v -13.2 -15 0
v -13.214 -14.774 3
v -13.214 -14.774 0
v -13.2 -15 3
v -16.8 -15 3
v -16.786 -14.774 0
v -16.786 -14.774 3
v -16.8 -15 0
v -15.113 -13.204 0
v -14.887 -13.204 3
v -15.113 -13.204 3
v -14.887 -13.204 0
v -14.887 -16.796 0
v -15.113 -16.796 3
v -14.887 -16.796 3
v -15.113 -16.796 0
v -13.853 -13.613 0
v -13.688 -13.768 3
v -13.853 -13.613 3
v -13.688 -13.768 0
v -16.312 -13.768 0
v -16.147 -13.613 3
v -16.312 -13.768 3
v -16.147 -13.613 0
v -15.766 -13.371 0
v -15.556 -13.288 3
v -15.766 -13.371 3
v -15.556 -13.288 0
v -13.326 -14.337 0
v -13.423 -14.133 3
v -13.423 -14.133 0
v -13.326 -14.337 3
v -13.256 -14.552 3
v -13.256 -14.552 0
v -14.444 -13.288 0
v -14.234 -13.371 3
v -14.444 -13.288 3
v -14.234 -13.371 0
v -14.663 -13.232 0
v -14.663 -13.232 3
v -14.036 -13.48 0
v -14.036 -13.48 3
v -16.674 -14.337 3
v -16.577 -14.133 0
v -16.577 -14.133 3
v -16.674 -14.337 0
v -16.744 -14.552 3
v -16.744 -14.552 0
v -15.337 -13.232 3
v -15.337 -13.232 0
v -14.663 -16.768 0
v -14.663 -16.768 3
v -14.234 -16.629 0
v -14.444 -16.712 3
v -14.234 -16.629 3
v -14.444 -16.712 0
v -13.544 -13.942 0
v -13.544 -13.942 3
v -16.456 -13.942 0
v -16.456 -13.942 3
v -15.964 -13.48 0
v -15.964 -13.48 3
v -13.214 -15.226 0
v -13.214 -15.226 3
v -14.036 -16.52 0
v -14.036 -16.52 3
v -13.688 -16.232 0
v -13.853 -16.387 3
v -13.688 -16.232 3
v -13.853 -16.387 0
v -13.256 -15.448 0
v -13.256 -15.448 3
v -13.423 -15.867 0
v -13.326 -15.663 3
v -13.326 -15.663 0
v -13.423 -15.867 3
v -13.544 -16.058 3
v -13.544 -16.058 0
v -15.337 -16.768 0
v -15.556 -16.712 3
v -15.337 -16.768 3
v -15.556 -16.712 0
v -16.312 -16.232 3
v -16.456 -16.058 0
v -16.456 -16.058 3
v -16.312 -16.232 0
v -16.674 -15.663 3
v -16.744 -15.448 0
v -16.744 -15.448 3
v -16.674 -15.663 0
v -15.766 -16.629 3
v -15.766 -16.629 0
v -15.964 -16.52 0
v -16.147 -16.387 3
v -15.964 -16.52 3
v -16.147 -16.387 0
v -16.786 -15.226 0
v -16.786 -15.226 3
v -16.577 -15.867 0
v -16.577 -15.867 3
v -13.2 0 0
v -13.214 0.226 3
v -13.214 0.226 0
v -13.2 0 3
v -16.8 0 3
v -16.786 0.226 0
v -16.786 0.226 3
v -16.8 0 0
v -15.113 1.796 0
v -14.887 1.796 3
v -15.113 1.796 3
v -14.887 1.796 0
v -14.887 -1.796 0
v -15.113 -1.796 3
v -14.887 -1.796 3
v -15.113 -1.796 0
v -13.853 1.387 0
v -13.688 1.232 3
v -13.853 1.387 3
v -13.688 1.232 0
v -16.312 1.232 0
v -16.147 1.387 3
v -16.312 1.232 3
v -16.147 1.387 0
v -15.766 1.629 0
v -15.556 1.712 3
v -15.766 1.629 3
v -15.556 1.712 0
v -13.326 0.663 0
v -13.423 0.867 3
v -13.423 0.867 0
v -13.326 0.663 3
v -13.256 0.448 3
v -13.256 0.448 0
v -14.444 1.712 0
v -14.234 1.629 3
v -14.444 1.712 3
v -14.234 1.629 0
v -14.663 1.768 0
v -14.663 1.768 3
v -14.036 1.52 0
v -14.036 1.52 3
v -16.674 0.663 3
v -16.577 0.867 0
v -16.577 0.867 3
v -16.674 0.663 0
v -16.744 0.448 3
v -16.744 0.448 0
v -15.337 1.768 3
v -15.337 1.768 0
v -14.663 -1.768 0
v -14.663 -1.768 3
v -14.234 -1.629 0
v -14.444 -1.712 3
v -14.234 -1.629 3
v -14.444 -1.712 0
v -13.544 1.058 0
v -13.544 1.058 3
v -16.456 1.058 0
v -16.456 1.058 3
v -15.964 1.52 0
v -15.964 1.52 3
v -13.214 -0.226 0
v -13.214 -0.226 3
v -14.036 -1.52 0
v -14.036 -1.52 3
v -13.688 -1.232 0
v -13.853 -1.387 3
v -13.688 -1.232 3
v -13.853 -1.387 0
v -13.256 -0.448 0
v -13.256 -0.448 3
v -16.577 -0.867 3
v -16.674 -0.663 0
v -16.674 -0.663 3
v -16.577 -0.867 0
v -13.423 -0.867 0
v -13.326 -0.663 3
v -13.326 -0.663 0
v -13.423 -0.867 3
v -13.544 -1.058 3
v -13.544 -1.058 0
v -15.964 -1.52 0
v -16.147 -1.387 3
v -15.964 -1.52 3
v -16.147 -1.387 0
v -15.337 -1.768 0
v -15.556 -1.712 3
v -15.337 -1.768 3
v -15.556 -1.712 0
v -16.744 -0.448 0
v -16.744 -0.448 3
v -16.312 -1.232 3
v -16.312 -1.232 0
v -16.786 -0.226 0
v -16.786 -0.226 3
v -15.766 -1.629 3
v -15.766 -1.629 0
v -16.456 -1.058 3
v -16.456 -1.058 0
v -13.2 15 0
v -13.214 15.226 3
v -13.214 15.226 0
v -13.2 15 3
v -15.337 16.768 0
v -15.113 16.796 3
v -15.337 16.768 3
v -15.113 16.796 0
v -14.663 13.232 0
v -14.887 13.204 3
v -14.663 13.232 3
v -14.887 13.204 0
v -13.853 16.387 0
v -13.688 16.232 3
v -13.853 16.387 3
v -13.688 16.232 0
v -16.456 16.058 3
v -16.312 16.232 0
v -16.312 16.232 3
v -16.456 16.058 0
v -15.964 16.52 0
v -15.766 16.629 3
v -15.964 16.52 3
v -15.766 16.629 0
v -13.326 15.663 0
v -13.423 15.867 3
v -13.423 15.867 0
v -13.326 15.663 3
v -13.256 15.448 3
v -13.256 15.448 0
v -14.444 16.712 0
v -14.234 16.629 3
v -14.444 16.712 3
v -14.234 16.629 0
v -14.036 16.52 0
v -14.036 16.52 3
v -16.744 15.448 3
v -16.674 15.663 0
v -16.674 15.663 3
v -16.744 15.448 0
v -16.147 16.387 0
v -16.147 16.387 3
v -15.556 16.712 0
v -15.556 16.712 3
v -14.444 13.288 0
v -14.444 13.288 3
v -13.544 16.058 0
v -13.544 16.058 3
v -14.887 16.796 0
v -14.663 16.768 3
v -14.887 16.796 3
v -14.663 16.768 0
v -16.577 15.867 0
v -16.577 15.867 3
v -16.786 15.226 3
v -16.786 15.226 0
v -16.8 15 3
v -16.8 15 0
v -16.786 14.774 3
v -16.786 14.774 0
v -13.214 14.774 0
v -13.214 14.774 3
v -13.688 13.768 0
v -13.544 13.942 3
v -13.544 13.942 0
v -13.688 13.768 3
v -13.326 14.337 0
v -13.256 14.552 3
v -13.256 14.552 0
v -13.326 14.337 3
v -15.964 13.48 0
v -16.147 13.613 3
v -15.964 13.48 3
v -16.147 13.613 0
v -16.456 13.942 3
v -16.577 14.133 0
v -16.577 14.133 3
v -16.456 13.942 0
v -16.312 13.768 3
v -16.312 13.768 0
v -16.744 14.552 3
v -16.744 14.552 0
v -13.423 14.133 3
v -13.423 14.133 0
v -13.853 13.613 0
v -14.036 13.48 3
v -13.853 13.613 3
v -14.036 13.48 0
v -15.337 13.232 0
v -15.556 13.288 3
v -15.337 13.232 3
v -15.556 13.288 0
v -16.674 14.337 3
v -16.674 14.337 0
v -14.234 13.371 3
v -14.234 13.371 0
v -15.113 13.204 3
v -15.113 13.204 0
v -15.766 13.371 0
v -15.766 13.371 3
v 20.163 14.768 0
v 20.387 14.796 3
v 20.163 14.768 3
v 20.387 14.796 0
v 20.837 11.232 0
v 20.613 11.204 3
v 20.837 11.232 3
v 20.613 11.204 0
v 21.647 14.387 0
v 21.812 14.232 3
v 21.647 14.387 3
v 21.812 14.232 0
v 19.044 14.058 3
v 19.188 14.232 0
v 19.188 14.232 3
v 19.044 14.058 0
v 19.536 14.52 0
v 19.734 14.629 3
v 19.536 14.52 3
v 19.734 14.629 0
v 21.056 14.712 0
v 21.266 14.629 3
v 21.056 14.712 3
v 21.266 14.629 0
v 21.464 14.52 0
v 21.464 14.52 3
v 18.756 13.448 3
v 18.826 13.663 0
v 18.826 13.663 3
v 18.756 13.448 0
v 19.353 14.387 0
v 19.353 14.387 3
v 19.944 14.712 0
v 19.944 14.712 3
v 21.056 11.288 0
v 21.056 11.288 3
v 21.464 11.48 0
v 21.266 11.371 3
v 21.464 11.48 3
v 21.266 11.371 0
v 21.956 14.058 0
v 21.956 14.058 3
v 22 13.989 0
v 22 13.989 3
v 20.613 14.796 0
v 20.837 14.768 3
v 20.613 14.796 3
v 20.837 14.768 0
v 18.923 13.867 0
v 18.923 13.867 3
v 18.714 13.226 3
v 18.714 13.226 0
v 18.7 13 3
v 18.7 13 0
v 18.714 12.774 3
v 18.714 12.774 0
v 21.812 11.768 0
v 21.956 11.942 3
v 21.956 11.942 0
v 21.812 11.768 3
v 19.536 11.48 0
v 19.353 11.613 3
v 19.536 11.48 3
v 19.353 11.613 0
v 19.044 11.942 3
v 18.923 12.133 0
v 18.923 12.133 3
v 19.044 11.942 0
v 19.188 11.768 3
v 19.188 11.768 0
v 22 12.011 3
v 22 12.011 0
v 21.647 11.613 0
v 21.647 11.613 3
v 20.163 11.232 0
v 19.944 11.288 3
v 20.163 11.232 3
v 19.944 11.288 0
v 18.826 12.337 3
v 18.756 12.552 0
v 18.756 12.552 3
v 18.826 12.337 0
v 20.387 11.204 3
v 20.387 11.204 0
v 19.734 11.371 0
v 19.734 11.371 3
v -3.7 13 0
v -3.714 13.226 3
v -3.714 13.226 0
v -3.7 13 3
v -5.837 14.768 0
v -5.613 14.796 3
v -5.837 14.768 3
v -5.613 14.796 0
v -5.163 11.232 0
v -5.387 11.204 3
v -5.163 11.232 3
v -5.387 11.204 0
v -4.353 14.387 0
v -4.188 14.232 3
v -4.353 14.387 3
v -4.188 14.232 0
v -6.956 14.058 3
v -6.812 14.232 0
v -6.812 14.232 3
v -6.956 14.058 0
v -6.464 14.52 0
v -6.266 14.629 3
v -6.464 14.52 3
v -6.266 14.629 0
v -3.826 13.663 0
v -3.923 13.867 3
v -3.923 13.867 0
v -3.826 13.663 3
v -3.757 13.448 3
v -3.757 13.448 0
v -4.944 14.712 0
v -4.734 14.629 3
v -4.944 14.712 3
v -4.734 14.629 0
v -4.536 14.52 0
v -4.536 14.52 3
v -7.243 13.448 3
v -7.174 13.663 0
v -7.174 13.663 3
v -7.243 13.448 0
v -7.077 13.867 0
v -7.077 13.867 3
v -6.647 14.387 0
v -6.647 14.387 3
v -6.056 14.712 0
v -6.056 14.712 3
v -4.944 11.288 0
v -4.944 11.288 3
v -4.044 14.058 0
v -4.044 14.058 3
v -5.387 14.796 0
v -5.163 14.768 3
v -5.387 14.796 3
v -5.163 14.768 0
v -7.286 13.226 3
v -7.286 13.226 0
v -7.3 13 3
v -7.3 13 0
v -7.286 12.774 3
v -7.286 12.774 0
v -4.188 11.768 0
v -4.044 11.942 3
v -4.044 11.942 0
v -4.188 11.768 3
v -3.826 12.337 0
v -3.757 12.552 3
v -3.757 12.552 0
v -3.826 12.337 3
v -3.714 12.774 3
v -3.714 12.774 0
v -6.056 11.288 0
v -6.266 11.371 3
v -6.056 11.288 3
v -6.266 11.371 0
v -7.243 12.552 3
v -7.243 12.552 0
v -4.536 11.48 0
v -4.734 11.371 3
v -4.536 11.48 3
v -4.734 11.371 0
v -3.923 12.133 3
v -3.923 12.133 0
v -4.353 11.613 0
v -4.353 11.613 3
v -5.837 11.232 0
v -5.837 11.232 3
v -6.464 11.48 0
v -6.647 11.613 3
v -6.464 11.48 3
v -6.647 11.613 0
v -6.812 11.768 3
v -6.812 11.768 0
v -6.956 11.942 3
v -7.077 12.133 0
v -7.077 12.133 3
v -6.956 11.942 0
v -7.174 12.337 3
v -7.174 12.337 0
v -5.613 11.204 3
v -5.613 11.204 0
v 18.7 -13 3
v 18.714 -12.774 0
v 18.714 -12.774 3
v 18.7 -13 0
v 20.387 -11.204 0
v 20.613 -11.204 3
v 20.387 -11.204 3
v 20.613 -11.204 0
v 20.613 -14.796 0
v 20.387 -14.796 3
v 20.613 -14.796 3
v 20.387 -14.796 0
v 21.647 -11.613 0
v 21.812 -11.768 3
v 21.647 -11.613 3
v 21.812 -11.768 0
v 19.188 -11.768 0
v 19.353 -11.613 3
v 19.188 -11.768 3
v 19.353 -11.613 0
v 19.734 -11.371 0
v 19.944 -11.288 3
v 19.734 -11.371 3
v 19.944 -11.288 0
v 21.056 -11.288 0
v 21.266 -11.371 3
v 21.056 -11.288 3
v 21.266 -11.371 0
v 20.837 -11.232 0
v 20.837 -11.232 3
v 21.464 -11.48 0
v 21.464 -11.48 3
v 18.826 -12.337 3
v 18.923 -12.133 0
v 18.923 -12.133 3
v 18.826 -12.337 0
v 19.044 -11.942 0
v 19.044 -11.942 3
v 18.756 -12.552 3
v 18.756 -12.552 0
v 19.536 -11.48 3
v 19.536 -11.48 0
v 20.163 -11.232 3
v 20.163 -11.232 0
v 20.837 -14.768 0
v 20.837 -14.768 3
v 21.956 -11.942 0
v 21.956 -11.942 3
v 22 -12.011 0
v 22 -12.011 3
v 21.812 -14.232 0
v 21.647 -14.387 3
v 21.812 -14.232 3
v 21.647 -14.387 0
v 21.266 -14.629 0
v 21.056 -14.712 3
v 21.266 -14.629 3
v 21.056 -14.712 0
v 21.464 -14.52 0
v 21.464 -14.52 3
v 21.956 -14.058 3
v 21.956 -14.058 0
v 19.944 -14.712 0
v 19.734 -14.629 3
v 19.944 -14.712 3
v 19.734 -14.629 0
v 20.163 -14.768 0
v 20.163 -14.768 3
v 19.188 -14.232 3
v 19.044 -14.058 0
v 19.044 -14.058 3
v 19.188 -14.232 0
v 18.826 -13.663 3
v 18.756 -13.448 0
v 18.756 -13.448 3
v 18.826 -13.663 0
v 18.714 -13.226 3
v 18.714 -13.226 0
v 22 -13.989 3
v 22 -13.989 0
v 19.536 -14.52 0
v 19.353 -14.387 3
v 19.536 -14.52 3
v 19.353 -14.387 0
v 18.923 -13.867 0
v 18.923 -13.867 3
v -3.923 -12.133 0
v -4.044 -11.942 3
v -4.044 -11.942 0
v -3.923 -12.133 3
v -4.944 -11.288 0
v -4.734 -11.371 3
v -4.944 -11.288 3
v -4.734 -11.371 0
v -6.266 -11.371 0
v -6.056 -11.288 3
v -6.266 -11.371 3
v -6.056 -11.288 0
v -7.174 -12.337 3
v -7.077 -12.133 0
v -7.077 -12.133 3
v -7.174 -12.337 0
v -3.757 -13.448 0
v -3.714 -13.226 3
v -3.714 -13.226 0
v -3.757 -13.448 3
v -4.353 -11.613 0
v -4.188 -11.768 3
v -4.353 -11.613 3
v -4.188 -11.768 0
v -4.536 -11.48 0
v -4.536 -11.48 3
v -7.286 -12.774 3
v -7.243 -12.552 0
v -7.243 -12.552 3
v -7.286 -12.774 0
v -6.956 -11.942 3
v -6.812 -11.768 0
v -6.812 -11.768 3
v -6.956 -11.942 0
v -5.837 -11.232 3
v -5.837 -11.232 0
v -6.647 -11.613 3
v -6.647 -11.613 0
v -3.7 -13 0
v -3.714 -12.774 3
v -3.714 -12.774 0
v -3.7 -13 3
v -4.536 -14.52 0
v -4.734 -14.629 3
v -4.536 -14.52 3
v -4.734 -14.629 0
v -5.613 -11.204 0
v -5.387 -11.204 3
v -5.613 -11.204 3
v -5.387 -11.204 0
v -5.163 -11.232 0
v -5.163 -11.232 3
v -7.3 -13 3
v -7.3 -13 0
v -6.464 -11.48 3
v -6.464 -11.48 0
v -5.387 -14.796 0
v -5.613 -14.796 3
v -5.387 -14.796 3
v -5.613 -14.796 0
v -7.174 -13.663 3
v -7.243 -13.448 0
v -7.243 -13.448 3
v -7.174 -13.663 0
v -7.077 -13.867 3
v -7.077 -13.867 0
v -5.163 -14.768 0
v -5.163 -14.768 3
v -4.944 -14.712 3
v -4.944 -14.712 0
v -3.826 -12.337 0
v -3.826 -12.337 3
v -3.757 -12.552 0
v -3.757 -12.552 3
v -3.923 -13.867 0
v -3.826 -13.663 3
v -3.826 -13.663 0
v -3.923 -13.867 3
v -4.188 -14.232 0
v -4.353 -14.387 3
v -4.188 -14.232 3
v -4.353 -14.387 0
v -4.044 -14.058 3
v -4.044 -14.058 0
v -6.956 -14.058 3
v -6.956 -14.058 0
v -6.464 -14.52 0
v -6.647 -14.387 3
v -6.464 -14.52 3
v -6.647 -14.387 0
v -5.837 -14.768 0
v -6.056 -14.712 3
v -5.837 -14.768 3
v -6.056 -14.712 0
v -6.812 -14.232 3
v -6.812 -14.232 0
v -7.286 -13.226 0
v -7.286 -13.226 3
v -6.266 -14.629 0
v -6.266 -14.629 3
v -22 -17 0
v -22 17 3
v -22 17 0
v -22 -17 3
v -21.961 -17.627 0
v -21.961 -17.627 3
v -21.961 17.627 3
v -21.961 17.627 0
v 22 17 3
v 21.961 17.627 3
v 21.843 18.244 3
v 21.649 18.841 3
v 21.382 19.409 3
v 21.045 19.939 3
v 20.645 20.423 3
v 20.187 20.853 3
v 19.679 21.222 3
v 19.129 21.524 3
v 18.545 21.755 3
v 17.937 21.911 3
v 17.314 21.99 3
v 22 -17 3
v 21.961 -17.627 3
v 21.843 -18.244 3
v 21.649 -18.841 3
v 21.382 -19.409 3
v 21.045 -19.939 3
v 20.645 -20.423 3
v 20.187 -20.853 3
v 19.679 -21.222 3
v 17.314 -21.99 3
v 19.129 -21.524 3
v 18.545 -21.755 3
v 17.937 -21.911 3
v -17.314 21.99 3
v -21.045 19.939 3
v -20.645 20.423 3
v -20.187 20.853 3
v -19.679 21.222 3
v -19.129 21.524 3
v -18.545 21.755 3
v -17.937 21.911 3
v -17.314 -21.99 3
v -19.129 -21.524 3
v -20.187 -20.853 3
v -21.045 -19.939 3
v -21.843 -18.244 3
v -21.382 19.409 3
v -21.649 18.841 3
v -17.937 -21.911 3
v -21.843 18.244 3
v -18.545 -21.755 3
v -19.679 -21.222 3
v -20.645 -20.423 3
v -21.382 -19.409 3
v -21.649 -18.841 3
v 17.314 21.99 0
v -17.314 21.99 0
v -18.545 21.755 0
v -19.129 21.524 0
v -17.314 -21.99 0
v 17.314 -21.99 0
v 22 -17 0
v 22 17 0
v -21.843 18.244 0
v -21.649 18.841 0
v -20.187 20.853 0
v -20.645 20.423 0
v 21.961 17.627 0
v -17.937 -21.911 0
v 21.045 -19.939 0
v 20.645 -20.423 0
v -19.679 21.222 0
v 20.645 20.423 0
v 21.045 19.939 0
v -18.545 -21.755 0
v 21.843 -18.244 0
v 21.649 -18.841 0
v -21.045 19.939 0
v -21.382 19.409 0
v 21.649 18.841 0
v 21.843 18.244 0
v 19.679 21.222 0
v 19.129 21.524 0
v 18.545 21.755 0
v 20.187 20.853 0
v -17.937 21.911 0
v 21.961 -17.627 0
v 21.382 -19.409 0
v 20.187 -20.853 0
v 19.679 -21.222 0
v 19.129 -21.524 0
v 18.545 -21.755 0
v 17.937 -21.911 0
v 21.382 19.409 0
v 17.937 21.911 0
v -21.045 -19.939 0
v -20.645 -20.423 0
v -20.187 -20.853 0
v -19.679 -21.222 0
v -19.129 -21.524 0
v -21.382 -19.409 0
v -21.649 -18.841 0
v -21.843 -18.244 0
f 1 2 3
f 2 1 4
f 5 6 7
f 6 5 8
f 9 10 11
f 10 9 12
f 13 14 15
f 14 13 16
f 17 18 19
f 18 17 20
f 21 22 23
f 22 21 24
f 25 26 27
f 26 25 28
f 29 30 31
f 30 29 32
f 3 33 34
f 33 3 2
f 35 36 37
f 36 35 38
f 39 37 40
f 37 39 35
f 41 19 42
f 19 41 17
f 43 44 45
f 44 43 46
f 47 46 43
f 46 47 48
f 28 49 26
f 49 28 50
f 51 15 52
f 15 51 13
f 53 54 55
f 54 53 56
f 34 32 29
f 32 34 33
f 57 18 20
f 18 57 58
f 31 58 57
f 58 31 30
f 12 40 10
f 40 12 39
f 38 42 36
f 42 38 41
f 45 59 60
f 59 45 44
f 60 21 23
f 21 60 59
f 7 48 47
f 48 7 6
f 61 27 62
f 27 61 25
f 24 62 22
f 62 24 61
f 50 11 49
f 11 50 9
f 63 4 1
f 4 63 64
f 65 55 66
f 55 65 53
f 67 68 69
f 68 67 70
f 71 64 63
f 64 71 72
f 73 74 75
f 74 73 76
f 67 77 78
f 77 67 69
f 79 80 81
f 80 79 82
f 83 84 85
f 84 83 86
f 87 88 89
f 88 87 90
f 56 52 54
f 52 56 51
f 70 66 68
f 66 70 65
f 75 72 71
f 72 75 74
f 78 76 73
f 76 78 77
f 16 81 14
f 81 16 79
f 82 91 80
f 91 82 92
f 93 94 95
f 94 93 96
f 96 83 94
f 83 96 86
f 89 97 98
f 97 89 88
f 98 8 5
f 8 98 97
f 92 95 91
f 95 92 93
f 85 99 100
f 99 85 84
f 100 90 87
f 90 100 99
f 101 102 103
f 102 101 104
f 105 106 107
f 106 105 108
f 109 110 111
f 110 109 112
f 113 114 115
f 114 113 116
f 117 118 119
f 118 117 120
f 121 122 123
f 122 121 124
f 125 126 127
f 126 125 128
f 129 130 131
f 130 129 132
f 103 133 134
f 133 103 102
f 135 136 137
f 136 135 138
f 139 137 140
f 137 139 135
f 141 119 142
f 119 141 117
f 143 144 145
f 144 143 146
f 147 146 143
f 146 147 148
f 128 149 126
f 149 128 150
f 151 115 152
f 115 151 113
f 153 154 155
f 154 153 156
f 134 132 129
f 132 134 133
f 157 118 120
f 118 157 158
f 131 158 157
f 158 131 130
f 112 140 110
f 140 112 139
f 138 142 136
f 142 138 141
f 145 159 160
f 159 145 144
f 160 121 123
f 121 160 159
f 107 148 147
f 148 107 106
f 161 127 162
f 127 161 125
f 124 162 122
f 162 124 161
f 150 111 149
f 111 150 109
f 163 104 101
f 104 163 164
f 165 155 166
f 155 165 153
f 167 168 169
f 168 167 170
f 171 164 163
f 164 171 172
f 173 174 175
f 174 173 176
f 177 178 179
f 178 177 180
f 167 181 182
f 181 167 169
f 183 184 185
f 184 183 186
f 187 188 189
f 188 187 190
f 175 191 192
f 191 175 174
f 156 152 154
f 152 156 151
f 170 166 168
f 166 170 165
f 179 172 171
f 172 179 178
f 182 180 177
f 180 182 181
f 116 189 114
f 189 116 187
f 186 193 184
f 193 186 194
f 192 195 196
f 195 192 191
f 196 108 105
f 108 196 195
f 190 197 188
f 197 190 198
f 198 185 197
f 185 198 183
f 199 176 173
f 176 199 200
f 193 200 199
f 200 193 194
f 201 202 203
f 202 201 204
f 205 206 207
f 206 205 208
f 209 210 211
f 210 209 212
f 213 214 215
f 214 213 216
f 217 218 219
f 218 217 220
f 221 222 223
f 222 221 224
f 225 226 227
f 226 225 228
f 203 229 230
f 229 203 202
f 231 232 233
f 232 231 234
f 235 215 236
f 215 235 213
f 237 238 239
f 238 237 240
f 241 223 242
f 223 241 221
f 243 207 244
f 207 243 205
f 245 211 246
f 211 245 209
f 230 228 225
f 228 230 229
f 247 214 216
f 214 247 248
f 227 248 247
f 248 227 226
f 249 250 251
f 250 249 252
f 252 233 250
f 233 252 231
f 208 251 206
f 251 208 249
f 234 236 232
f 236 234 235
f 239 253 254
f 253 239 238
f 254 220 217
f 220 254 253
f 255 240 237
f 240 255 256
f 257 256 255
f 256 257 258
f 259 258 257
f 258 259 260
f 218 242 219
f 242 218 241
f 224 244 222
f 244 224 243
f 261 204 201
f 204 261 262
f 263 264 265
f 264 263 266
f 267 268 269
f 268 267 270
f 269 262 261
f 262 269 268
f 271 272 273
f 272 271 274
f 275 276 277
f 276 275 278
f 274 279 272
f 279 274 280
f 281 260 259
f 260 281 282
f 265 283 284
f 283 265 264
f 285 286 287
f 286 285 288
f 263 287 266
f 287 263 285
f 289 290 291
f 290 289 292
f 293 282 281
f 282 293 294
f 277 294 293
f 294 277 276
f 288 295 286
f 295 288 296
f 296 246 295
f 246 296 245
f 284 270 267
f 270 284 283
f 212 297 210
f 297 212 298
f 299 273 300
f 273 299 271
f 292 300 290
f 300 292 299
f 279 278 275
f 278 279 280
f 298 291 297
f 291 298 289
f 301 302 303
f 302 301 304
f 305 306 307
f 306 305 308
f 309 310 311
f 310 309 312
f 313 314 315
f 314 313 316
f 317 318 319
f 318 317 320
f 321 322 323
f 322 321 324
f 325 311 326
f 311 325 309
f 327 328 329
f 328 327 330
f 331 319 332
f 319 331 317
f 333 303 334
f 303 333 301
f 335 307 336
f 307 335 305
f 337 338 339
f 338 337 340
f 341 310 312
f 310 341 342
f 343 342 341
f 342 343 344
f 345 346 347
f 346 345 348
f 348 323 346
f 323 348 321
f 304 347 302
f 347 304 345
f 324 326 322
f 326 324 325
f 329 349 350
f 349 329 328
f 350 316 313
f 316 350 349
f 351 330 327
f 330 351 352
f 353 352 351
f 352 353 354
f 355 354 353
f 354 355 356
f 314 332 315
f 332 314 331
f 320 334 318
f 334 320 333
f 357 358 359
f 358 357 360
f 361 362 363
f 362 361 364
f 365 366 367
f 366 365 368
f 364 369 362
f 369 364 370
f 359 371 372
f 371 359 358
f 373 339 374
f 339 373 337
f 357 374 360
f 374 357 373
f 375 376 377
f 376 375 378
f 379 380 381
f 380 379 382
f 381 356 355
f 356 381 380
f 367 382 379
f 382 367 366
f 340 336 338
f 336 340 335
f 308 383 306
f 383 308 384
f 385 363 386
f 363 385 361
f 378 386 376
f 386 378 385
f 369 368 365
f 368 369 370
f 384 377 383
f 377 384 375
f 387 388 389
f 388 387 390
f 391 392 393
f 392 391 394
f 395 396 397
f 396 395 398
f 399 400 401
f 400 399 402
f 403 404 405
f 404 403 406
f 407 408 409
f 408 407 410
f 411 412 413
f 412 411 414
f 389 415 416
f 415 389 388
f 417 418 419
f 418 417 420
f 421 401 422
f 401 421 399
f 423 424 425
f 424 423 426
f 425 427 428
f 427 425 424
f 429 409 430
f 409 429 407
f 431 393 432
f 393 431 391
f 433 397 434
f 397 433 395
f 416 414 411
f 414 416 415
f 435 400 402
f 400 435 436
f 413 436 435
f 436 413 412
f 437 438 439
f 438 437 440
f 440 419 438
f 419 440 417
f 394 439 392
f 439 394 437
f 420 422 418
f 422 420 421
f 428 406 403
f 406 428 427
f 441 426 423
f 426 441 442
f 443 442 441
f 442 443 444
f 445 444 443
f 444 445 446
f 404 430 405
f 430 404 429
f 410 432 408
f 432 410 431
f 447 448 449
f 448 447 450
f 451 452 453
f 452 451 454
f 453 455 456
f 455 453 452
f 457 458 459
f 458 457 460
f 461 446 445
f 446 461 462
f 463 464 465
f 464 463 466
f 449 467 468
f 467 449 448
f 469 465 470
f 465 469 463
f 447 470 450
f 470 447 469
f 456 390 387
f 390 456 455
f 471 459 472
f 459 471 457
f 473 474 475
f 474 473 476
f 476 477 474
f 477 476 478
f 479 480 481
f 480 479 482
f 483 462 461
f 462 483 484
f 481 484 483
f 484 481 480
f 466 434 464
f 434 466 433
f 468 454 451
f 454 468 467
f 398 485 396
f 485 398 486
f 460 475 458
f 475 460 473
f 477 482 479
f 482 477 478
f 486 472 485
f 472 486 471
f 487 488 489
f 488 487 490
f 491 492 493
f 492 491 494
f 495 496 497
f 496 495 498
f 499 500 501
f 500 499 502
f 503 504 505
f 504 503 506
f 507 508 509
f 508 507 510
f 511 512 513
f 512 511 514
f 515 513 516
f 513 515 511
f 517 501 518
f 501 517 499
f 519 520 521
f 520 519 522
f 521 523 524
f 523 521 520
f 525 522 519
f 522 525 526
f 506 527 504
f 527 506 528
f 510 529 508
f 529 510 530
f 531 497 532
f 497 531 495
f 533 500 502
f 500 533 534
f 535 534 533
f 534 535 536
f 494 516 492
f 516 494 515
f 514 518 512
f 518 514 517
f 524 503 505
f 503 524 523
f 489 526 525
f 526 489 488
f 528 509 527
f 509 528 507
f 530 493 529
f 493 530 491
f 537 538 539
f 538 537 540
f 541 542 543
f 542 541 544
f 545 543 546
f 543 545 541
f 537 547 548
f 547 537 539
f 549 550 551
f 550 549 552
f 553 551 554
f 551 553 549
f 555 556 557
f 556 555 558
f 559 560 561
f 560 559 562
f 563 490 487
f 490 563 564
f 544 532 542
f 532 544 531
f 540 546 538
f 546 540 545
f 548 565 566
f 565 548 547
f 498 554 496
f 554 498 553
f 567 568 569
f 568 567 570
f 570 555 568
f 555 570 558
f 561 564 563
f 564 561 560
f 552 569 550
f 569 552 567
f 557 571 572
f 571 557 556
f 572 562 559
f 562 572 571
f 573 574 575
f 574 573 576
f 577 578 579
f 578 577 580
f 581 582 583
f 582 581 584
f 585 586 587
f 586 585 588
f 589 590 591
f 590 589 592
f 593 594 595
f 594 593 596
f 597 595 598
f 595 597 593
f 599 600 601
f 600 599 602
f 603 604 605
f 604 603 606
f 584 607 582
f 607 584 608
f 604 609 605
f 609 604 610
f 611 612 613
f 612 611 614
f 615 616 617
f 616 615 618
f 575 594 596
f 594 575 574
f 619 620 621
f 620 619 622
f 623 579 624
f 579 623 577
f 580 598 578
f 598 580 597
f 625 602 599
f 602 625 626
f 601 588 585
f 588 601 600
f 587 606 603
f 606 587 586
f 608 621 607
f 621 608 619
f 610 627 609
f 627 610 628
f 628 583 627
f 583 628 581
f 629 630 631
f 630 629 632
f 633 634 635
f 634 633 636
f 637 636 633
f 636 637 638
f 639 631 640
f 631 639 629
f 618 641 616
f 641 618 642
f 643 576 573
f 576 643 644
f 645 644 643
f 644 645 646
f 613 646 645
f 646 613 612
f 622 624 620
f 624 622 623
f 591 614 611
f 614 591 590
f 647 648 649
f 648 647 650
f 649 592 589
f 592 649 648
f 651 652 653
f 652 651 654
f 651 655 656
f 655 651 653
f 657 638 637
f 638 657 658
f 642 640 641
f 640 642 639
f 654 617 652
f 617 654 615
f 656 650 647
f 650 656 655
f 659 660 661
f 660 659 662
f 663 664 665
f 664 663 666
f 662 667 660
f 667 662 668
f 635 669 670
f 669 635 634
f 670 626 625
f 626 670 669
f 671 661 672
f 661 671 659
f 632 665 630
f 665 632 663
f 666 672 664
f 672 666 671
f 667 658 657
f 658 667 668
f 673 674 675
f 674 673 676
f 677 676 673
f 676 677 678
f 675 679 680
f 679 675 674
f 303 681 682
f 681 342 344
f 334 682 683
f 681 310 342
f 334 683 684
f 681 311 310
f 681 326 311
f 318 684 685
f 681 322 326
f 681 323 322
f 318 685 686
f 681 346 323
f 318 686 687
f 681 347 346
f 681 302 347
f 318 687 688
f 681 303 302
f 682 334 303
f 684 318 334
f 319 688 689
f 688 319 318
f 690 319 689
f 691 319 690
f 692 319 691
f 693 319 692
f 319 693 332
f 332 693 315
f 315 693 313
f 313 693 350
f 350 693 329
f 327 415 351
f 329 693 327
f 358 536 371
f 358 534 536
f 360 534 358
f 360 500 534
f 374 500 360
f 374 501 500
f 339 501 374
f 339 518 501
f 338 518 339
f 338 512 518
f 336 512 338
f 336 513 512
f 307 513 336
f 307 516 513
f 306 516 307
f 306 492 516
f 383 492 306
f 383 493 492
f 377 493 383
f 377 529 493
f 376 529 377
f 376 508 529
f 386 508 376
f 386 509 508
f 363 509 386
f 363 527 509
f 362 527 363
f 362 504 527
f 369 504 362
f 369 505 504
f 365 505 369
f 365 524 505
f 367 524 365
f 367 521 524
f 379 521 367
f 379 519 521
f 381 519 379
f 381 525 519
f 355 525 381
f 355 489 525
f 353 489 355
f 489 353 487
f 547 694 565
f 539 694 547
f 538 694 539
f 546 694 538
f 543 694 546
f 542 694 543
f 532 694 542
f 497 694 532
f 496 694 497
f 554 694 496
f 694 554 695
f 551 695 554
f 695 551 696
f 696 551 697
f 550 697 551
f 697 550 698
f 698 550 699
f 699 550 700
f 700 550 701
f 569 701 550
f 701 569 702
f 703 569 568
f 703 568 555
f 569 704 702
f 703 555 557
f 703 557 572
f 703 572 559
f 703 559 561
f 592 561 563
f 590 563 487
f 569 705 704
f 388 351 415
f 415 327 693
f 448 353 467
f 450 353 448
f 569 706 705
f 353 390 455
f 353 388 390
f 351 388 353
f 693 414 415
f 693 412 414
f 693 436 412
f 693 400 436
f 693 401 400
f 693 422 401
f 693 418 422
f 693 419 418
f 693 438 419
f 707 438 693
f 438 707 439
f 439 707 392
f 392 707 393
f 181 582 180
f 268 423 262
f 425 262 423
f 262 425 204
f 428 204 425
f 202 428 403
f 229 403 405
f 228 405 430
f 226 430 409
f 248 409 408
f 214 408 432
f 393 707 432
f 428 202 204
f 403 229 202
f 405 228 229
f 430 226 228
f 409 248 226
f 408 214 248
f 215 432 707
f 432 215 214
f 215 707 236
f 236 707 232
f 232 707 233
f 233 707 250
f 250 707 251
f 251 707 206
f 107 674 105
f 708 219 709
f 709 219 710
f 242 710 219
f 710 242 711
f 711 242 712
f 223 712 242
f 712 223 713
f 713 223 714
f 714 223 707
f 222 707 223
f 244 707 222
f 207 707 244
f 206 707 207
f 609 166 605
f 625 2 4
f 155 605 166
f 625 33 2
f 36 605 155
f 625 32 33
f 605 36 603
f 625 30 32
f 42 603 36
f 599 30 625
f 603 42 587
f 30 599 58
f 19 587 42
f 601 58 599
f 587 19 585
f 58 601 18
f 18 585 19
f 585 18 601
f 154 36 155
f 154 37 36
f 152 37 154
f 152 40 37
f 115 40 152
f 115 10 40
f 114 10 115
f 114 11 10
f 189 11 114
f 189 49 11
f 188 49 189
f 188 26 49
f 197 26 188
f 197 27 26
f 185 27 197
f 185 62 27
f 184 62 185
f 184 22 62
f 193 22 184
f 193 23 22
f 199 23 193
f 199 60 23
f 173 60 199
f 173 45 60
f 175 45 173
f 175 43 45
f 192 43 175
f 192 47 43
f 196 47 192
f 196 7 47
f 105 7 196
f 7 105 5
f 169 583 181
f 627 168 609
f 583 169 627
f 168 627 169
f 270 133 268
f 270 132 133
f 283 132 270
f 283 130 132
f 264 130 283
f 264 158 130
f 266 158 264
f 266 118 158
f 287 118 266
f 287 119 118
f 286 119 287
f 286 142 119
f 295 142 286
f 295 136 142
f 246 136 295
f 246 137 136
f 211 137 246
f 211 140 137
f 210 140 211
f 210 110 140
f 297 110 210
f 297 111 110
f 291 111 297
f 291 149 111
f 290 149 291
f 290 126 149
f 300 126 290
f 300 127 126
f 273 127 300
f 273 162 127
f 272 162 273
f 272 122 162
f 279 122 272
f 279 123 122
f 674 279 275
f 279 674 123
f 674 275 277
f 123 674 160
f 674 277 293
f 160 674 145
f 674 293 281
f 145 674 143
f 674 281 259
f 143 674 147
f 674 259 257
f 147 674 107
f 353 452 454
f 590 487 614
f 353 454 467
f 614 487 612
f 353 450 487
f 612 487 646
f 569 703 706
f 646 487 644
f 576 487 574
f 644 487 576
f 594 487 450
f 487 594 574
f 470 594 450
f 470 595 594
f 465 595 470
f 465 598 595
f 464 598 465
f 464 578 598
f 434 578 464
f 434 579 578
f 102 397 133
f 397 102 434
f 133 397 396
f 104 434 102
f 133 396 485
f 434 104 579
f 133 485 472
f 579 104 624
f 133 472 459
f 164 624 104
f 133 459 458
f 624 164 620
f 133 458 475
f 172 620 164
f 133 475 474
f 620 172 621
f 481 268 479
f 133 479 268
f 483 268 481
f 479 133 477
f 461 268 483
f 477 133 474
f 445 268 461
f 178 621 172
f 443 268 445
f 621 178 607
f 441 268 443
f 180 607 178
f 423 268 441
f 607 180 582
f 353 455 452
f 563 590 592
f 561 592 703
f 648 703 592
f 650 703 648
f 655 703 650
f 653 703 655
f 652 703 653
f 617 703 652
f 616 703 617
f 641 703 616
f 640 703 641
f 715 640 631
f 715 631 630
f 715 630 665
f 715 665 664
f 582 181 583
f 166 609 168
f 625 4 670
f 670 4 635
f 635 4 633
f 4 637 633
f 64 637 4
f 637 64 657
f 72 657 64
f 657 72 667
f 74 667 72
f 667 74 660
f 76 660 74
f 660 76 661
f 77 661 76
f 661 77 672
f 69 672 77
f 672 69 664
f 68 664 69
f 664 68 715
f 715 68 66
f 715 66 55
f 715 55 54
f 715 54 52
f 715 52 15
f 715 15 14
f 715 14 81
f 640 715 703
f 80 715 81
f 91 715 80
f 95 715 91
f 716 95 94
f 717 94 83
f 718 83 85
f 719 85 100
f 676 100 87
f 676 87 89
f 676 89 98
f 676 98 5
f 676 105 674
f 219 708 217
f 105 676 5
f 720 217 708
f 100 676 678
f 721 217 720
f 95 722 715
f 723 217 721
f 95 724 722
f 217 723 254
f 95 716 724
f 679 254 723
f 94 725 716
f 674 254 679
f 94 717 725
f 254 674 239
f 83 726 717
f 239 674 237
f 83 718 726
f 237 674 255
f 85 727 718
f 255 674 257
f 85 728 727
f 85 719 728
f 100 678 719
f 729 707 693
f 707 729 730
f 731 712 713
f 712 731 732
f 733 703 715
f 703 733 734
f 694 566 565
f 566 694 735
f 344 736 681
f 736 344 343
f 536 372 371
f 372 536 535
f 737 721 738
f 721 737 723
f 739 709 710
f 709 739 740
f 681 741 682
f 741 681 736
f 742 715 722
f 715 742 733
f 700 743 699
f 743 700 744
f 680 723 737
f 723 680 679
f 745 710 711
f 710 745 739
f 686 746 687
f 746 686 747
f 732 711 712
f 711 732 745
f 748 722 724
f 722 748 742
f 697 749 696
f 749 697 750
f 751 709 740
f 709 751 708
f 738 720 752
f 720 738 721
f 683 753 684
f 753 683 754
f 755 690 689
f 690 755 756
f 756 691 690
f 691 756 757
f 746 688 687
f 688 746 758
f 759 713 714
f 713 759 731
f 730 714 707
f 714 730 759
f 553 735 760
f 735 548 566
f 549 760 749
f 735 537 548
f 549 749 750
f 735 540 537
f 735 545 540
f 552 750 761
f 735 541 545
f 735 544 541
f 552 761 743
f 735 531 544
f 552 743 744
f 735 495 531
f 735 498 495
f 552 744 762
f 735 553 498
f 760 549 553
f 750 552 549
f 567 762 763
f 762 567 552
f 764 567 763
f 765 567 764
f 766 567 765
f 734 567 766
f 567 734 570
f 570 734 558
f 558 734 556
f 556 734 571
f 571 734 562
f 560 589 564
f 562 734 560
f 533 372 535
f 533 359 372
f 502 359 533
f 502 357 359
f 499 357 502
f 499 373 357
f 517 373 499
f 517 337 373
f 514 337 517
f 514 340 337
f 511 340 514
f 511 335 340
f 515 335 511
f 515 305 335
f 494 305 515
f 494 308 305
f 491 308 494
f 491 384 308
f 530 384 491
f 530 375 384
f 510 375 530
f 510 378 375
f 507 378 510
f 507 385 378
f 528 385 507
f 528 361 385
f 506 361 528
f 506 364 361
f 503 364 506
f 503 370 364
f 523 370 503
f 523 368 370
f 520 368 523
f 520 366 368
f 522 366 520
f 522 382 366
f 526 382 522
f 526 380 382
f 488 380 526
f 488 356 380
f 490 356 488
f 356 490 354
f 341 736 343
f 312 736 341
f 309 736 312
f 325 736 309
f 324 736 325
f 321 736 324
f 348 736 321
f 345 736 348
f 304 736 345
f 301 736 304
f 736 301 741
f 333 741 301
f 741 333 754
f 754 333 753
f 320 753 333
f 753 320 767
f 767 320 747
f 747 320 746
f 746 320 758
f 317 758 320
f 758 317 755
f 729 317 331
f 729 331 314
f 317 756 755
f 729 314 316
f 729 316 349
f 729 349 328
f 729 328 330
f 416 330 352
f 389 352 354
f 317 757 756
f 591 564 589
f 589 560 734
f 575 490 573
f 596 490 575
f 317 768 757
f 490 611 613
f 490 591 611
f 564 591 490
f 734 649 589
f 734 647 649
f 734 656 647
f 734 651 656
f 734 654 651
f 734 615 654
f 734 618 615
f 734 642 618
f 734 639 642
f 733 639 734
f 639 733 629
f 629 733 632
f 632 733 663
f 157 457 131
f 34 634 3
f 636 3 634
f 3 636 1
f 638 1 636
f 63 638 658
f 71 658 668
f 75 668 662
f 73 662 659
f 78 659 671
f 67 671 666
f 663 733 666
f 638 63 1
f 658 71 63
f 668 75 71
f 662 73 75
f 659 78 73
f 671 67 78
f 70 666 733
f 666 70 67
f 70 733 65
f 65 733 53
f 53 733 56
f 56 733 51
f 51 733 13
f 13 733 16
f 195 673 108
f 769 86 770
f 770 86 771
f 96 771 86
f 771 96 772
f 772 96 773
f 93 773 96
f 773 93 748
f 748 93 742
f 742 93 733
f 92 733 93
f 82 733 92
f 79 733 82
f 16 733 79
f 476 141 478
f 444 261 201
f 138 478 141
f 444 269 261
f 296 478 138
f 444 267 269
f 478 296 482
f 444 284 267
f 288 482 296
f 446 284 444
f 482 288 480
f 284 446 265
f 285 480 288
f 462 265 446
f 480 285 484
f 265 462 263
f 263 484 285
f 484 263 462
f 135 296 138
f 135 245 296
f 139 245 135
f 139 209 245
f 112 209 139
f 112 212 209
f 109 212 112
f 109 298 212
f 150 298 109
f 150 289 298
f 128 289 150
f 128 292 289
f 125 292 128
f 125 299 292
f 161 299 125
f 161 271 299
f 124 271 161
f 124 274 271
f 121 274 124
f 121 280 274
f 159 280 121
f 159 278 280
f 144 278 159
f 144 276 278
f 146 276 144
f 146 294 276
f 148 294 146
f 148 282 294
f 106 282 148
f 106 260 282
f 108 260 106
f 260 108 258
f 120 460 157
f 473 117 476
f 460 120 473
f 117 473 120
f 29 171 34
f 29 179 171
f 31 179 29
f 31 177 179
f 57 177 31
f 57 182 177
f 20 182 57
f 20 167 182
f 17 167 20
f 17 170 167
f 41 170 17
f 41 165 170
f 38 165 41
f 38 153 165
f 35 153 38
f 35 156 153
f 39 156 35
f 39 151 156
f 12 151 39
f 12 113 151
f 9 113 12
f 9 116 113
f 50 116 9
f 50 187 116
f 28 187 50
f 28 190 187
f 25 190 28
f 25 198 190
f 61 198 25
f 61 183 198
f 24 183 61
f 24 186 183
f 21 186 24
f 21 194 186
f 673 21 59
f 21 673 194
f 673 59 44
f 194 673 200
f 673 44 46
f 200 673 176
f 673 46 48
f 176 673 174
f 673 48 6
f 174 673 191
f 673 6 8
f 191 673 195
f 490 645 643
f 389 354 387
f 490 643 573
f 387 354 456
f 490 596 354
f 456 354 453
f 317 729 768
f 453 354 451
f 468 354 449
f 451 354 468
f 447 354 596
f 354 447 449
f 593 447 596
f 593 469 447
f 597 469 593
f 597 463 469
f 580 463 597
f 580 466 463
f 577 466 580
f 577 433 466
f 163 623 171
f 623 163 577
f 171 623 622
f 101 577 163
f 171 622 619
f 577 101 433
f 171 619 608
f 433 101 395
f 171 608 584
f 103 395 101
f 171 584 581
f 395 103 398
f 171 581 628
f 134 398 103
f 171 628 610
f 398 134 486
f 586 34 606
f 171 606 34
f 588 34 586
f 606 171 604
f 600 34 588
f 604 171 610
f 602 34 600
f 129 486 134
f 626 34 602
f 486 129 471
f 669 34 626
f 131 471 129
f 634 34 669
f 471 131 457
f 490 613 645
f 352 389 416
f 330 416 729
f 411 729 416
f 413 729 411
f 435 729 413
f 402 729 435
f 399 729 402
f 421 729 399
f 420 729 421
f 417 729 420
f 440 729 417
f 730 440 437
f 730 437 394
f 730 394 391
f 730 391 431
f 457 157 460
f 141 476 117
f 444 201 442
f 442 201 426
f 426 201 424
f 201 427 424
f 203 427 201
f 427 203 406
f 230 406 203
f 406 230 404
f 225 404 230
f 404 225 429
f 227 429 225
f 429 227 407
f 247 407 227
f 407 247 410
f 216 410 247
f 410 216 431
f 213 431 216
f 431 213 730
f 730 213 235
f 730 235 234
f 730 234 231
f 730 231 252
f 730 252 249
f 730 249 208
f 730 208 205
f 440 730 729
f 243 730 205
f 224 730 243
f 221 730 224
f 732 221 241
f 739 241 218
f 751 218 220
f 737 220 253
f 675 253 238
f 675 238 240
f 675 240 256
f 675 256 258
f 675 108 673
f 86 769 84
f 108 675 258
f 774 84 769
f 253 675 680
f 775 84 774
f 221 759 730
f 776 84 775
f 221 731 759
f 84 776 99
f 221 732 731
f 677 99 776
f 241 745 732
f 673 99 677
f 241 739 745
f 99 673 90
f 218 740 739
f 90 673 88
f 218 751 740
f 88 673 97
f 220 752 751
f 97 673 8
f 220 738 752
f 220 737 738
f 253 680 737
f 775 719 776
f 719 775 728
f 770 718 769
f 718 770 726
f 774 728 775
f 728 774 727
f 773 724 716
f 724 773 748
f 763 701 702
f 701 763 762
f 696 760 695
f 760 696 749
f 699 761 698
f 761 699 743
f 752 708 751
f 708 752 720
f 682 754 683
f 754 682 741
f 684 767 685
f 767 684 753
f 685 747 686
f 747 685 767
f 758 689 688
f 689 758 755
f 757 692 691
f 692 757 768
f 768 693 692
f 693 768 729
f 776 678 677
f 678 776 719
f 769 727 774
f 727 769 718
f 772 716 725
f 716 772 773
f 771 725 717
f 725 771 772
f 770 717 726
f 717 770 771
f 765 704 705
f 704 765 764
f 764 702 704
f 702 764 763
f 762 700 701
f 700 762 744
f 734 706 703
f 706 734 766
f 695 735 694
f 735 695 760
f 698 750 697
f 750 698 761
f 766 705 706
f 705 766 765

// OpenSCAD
$fn = 50;


difference() {
	union() {
		translate(v = [0, 0, 0]) {
			rotate(a = [0, 0, 0]) {
				hull() {
					translate(v = [-17.0000000000, 17.0000000000, 0]) {
						rotate(a = [0, 0, 0]) {
							translate(v = [0, 0, 0]) {
								rotate(a = [0, 0, 0]) {
									cylinder(h = 3, r = 5);
								}
							}
						}
					}
					translate(v = [17.0000000000, 17.0000000000, 0]) {
						rotate(a = [0, 0, 0]) {
							translate(v = [0, 0, 0]) {
								rotate(a = [0, 0, 0]) {
									cylinder(h = 3, r = 5);
								}
							}
						}
					}
					translate(v = [-17.0000000000, -17.0000000000, 0]) {
						rotate(a = [0, 0, 0]) {
							translate(v = [0, 0, 0]) {
								rotate(a = [0, 0, 0]) {
									cylinder(h = 3, r = 5);
								}
							}
						}
					}
					translate(v = [17.0000000000, -17.0000000000, 0]) {
						rotate(a = [0, 0, 0]) {
							translate(v = [0, 0, 0]) {
								rotate(a = [0, 0, 0]) {
									cylinder(h = 3, r = 5);
								}
							}
						}
					}
				}
			}
		}
	}
	union() {
		translate(v = [-15.0000000000, -15.0000000000, -125.0000000000]) {
			rotate(a = [0, 0, 0]) {
				cylinder(h = 250, r = 1.8000000000);
			}
		}
		translate(v = [-15.0000000000, 0.0000000000, -125.0000000000]) {
			rotate(a = [0, 0, 0]) {
				cylinder(h = 250, r = 1.8000000000);
			}
		}
		translate(v = [-15.0000000000, 15.0000000000, -125.0000000000]) {
			rotate(a = [0, 0, 0]) {
				cylinder(h = 250, r = 1.8000000000);
			}
		}
		translate(v = [20.5000000000, 13.0000000000, -125.0000000000]) {
			rotate(a = [0, 0, 0]) {
				cylinder(h = 250, r = 1.8000000000);
			}
		}
		translate(v = [-5.5000000000, 13.0000000000, -125.0000000000]) {
			rotate(a = [0, 0, 0]) {
				cylinder(h = 250, r = 1.8000000000);
			}
		}
		translate(v = [20.5000000000, -13.0000000000, -125.0000000000]) {
			rotate(a = [0, 0, 0]) {
				cylinder(h = 250, r = 1.8000000000);
			}
		}
		translate(v = [-5.5000000000, -13.0000000000, -125.0000000000]) {
			rotate(a = [0, 0, 0]) {
				cylinder(h = 250, r = 1.8000000000);
			}
		}
	}
}
